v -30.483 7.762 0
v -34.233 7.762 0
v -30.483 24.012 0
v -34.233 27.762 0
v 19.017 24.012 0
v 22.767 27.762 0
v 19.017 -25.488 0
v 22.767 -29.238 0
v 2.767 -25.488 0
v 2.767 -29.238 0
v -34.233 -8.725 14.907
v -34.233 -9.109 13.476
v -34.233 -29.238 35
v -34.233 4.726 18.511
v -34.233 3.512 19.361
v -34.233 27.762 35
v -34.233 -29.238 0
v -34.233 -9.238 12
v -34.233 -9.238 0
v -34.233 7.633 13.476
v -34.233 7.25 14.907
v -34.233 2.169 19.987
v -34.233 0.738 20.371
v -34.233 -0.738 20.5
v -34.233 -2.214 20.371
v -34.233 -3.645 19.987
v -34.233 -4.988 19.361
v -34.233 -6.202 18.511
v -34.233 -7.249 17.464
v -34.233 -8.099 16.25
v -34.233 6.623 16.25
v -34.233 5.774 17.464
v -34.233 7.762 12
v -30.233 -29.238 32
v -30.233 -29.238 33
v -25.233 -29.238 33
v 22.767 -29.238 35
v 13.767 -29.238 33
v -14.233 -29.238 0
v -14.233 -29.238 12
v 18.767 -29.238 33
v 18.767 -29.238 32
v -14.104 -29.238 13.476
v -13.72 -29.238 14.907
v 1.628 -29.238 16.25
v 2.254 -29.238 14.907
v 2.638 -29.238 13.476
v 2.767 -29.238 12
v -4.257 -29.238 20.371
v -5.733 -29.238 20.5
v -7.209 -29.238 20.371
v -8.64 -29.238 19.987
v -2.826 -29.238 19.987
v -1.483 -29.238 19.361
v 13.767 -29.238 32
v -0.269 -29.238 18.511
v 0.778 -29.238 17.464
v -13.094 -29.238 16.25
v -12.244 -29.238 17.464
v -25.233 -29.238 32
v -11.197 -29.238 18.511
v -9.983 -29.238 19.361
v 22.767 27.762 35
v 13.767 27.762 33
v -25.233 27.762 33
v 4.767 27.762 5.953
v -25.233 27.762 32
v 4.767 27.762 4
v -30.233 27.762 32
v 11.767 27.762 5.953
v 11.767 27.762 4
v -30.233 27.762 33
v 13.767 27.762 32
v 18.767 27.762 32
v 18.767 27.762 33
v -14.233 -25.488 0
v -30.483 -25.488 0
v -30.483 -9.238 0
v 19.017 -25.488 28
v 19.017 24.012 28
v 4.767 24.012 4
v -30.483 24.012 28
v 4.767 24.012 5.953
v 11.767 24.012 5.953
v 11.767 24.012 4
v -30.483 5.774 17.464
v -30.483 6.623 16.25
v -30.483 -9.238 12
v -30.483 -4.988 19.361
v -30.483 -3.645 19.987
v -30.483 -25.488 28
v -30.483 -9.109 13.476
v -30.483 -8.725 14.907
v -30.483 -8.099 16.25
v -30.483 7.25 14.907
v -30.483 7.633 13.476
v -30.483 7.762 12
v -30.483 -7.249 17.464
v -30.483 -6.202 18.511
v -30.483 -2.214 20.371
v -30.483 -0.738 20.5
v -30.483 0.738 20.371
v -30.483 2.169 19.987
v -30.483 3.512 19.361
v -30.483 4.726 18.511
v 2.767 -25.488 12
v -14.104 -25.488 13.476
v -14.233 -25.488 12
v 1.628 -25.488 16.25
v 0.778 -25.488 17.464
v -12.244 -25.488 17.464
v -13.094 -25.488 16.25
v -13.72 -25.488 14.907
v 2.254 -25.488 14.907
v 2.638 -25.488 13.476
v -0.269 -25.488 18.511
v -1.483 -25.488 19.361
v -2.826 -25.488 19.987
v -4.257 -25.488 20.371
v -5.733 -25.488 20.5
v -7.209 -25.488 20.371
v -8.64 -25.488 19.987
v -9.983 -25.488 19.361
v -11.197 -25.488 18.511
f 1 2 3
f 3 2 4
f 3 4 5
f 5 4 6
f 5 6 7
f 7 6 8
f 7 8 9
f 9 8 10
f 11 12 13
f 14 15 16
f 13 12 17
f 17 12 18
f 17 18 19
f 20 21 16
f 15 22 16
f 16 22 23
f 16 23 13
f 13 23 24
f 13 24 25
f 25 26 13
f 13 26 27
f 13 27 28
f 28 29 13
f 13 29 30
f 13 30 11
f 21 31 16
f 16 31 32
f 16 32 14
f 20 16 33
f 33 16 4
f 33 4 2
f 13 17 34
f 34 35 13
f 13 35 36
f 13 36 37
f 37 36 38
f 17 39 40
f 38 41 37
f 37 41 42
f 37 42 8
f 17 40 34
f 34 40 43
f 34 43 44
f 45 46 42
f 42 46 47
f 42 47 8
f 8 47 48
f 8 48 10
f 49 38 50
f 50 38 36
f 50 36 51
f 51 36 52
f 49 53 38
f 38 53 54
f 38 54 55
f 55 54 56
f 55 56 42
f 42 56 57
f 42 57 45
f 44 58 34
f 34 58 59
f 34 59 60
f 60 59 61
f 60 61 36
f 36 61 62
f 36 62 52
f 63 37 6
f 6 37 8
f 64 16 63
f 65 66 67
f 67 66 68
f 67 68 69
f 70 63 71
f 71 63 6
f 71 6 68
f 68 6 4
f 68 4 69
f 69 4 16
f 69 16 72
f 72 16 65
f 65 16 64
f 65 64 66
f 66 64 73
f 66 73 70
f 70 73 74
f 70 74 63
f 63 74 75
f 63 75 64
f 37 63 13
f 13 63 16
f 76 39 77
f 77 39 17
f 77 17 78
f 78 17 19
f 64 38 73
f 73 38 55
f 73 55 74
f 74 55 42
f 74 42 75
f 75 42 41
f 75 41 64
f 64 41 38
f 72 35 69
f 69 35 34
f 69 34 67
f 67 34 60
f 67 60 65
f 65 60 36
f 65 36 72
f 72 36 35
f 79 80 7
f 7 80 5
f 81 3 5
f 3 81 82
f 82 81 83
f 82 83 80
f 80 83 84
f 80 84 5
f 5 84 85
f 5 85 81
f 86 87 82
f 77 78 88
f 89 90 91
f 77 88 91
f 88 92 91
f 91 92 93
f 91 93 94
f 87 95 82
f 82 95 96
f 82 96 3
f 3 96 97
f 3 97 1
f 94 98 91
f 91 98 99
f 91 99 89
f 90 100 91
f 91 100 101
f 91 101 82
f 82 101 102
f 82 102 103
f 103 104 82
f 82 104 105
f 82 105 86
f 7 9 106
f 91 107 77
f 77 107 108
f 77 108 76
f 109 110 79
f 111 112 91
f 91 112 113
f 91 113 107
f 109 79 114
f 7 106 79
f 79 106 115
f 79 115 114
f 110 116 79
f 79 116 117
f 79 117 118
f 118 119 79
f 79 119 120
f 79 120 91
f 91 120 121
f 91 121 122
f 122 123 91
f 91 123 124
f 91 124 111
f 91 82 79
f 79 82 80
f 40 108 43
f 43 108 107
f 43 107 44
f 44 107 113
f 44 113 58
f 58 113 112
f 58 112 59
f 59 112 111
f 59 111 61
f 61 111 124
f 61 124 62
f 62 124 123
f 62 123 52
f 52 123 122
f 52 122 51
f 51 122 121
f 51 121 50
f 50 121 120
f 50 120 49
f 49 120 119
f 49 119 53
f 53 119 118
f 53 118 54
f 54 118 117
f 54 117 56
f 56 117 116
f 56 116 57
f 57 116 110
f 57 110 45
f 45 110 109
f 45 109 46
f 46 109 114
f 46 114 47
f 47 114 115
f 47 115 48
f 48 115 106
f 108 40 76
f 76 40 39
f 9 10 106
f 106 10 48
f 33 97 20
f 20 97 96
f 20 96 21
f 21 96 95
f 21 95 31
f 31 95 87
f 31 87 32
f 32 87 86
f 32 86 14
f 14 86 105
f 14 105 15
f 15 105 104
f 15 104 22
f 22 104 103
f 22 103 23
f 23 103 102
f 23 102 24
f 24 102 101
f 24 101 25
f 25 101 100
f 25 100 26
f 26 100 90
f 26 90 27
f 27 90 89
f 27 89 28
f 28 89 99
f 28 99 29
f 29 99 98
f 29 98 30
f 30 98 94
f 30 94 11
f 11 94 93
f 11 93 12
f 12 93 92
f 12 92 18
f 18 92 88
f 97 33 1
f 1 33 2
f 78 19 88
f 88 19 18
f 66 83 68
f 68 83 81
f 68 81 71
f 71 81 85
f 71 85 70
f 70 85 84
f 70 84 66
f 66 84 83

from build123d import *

# Parameters (mm, degrees)
SKETCH2_W           = 57
SKETCH2_H           = 57
BOSS_EXTRUDE1_DEPTH = 35
SKETCH3_W           = 5
SKETCH3_H           = 1
CUT_EXTRUDE1_DEPTH  = 60
SKETCH4_W           = 49.5
SKETCH4_H           = 49.5
CUT_EXTRUDE2_DEPTH  = 28
CUT_EXTRUDE4_DEPTH  = 5
CUT_EXTRUDE5_DEPTH  = 10
SKETCH13_W          = 7
SKETCH13_H          = 1.952566844
CUT_EXTRUDE8_DEPTH  = 12


with BuildPart() as part:
    # Sketch2 → Boss-Extrude1 (new body)
    with BuildSketch(Plane.XY):
        with Locations((-5.733009709, -0.737864078)):
            Rectangle(SKETCH2_W, SKETCH2_H)
    extrude(amount=BOSS_EXTRUDE1_DEPTH)

    # Sketch3 → Cut-Extrude1 (cut)
    with BuildSketch(Plane(origin=(0, 27.762135922, 0), x_dir=(1, 0, 0), z_dir=(0, 1, 0))):
        with Locations((-27.733009709, -32.5)):
            Rectangle(SKETCH3_W, SKETCH3_H)
        with Locations((16.266990291, -32.5)):
            Rectangle(SKETCH3_W, SKETCH3_H)
    extrude(amount=-CUT_EXTRUDE1_DEPTH, mode=Mode.SUBTRACT)

    # Sketch4 → Cut-Extrude2 (cut)
    with BuildSketch(Plane(origin=(0, 0, 0), x_dir=(-1, 0, 0), z_dir=(0, 0, -1))):
        with Locations((5.733009709, -0.737864078)):
            Rectangle(SKETCH4_W, SKETCH4_H)
    extrude(amount=-CUT_EXTRUDE2_DEPTH, mode=Mode.SUBTRACT)

    # Sketch5 → Cut-Extrude4 (cut)
    with BuildSketch(Plane(origin=(0, -25.487864078, 0), x_dir=(1, 0, 0), z_dir=(0, 1, 0))):
        with BuildLine():
            Line((2.766990291, -12), (2.766990291, 0))
            Line((2.766990291, 0), (-14.233009709, 0))
            Line((-14.233009709, 0), (-14.233009709, -12))
            ThreePointArc((-14.233009709, -12), (-5.733009709, -20.5), (2.766990291, -12))
        make_face()
    extrude(amount=-CUT_EXTRUDE4_DEPTH, mode=Mode.SUBTRACT)

    # Sketch7 → Cut-Extrude5 (cut)
    with BuildSketch(Plane(origin=(-30.483009709, 0, 0), x_dir=(0, 0, -1), z_dir=(1, 0, 0))):
        with BuildLine():
            Line((-12, -9.237864078), (0, -9.237864078))
            Line((0, -9.237864078), (0, 7.762135922))
            Line((0, 7.762135922), (-12, 7.762135922))
            ThreePointArc((-12, 7.762135922), (-20.5, -0.737864078), (-12, -9.237864078))
        make_face()
    extrude(amount=-CUT_EXTRUDE5_DEPTH, mode=Mode.SUBTRACT)

    # Sketch13 → Cut-Extrude8 (cut)
    with BuildSketch(Plane(origin=(0, 27.762135922, 0), x_dir=(1, 0, 0), z_dir=(0, 1, 0))):
        with Locations((8.266990291, -4.976283422)):
            Rectangle(SKETCH13_W, SKETCH13_H)
    extrude(amount=-CUT_EXTRUDE8_DEPTH, mode=Mode.SUBTRACT)


solid = part.part
